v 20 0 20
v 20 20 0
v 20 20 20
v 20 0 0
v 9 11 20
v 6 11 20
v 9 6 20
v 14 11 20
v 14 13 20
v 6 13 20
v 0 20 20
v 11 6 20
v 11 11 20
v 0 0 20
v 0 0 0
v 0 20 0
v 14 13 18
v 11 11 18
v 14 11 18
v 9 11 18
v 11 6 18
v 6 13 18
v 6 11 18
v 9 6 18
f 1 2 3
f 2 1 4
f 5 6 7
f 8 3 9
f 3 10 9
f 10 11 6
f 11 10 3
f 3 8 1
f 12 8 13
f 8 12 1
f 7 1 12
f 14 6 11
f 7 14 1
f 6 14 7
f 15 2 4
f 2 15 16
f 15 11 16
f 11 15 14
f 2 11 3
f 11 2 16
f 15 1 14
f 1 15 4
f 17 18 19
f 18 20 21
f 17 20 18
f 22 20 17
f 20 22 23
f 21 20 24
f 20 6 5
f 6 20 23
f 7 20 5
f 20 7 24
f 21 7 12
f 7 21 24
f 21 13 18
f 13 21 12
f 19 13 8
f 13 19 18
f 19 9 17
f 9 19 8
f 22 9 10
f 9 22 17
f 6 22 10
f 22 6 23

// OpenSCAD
// 20-mm-Testwürfel mit eingelassenem "T"
difference(){ cube(20); translate([6,6,18]) linear_extrude(3) union(){translate([0,5])square([8,2]);translate([3,0])square([2,7]);} }
